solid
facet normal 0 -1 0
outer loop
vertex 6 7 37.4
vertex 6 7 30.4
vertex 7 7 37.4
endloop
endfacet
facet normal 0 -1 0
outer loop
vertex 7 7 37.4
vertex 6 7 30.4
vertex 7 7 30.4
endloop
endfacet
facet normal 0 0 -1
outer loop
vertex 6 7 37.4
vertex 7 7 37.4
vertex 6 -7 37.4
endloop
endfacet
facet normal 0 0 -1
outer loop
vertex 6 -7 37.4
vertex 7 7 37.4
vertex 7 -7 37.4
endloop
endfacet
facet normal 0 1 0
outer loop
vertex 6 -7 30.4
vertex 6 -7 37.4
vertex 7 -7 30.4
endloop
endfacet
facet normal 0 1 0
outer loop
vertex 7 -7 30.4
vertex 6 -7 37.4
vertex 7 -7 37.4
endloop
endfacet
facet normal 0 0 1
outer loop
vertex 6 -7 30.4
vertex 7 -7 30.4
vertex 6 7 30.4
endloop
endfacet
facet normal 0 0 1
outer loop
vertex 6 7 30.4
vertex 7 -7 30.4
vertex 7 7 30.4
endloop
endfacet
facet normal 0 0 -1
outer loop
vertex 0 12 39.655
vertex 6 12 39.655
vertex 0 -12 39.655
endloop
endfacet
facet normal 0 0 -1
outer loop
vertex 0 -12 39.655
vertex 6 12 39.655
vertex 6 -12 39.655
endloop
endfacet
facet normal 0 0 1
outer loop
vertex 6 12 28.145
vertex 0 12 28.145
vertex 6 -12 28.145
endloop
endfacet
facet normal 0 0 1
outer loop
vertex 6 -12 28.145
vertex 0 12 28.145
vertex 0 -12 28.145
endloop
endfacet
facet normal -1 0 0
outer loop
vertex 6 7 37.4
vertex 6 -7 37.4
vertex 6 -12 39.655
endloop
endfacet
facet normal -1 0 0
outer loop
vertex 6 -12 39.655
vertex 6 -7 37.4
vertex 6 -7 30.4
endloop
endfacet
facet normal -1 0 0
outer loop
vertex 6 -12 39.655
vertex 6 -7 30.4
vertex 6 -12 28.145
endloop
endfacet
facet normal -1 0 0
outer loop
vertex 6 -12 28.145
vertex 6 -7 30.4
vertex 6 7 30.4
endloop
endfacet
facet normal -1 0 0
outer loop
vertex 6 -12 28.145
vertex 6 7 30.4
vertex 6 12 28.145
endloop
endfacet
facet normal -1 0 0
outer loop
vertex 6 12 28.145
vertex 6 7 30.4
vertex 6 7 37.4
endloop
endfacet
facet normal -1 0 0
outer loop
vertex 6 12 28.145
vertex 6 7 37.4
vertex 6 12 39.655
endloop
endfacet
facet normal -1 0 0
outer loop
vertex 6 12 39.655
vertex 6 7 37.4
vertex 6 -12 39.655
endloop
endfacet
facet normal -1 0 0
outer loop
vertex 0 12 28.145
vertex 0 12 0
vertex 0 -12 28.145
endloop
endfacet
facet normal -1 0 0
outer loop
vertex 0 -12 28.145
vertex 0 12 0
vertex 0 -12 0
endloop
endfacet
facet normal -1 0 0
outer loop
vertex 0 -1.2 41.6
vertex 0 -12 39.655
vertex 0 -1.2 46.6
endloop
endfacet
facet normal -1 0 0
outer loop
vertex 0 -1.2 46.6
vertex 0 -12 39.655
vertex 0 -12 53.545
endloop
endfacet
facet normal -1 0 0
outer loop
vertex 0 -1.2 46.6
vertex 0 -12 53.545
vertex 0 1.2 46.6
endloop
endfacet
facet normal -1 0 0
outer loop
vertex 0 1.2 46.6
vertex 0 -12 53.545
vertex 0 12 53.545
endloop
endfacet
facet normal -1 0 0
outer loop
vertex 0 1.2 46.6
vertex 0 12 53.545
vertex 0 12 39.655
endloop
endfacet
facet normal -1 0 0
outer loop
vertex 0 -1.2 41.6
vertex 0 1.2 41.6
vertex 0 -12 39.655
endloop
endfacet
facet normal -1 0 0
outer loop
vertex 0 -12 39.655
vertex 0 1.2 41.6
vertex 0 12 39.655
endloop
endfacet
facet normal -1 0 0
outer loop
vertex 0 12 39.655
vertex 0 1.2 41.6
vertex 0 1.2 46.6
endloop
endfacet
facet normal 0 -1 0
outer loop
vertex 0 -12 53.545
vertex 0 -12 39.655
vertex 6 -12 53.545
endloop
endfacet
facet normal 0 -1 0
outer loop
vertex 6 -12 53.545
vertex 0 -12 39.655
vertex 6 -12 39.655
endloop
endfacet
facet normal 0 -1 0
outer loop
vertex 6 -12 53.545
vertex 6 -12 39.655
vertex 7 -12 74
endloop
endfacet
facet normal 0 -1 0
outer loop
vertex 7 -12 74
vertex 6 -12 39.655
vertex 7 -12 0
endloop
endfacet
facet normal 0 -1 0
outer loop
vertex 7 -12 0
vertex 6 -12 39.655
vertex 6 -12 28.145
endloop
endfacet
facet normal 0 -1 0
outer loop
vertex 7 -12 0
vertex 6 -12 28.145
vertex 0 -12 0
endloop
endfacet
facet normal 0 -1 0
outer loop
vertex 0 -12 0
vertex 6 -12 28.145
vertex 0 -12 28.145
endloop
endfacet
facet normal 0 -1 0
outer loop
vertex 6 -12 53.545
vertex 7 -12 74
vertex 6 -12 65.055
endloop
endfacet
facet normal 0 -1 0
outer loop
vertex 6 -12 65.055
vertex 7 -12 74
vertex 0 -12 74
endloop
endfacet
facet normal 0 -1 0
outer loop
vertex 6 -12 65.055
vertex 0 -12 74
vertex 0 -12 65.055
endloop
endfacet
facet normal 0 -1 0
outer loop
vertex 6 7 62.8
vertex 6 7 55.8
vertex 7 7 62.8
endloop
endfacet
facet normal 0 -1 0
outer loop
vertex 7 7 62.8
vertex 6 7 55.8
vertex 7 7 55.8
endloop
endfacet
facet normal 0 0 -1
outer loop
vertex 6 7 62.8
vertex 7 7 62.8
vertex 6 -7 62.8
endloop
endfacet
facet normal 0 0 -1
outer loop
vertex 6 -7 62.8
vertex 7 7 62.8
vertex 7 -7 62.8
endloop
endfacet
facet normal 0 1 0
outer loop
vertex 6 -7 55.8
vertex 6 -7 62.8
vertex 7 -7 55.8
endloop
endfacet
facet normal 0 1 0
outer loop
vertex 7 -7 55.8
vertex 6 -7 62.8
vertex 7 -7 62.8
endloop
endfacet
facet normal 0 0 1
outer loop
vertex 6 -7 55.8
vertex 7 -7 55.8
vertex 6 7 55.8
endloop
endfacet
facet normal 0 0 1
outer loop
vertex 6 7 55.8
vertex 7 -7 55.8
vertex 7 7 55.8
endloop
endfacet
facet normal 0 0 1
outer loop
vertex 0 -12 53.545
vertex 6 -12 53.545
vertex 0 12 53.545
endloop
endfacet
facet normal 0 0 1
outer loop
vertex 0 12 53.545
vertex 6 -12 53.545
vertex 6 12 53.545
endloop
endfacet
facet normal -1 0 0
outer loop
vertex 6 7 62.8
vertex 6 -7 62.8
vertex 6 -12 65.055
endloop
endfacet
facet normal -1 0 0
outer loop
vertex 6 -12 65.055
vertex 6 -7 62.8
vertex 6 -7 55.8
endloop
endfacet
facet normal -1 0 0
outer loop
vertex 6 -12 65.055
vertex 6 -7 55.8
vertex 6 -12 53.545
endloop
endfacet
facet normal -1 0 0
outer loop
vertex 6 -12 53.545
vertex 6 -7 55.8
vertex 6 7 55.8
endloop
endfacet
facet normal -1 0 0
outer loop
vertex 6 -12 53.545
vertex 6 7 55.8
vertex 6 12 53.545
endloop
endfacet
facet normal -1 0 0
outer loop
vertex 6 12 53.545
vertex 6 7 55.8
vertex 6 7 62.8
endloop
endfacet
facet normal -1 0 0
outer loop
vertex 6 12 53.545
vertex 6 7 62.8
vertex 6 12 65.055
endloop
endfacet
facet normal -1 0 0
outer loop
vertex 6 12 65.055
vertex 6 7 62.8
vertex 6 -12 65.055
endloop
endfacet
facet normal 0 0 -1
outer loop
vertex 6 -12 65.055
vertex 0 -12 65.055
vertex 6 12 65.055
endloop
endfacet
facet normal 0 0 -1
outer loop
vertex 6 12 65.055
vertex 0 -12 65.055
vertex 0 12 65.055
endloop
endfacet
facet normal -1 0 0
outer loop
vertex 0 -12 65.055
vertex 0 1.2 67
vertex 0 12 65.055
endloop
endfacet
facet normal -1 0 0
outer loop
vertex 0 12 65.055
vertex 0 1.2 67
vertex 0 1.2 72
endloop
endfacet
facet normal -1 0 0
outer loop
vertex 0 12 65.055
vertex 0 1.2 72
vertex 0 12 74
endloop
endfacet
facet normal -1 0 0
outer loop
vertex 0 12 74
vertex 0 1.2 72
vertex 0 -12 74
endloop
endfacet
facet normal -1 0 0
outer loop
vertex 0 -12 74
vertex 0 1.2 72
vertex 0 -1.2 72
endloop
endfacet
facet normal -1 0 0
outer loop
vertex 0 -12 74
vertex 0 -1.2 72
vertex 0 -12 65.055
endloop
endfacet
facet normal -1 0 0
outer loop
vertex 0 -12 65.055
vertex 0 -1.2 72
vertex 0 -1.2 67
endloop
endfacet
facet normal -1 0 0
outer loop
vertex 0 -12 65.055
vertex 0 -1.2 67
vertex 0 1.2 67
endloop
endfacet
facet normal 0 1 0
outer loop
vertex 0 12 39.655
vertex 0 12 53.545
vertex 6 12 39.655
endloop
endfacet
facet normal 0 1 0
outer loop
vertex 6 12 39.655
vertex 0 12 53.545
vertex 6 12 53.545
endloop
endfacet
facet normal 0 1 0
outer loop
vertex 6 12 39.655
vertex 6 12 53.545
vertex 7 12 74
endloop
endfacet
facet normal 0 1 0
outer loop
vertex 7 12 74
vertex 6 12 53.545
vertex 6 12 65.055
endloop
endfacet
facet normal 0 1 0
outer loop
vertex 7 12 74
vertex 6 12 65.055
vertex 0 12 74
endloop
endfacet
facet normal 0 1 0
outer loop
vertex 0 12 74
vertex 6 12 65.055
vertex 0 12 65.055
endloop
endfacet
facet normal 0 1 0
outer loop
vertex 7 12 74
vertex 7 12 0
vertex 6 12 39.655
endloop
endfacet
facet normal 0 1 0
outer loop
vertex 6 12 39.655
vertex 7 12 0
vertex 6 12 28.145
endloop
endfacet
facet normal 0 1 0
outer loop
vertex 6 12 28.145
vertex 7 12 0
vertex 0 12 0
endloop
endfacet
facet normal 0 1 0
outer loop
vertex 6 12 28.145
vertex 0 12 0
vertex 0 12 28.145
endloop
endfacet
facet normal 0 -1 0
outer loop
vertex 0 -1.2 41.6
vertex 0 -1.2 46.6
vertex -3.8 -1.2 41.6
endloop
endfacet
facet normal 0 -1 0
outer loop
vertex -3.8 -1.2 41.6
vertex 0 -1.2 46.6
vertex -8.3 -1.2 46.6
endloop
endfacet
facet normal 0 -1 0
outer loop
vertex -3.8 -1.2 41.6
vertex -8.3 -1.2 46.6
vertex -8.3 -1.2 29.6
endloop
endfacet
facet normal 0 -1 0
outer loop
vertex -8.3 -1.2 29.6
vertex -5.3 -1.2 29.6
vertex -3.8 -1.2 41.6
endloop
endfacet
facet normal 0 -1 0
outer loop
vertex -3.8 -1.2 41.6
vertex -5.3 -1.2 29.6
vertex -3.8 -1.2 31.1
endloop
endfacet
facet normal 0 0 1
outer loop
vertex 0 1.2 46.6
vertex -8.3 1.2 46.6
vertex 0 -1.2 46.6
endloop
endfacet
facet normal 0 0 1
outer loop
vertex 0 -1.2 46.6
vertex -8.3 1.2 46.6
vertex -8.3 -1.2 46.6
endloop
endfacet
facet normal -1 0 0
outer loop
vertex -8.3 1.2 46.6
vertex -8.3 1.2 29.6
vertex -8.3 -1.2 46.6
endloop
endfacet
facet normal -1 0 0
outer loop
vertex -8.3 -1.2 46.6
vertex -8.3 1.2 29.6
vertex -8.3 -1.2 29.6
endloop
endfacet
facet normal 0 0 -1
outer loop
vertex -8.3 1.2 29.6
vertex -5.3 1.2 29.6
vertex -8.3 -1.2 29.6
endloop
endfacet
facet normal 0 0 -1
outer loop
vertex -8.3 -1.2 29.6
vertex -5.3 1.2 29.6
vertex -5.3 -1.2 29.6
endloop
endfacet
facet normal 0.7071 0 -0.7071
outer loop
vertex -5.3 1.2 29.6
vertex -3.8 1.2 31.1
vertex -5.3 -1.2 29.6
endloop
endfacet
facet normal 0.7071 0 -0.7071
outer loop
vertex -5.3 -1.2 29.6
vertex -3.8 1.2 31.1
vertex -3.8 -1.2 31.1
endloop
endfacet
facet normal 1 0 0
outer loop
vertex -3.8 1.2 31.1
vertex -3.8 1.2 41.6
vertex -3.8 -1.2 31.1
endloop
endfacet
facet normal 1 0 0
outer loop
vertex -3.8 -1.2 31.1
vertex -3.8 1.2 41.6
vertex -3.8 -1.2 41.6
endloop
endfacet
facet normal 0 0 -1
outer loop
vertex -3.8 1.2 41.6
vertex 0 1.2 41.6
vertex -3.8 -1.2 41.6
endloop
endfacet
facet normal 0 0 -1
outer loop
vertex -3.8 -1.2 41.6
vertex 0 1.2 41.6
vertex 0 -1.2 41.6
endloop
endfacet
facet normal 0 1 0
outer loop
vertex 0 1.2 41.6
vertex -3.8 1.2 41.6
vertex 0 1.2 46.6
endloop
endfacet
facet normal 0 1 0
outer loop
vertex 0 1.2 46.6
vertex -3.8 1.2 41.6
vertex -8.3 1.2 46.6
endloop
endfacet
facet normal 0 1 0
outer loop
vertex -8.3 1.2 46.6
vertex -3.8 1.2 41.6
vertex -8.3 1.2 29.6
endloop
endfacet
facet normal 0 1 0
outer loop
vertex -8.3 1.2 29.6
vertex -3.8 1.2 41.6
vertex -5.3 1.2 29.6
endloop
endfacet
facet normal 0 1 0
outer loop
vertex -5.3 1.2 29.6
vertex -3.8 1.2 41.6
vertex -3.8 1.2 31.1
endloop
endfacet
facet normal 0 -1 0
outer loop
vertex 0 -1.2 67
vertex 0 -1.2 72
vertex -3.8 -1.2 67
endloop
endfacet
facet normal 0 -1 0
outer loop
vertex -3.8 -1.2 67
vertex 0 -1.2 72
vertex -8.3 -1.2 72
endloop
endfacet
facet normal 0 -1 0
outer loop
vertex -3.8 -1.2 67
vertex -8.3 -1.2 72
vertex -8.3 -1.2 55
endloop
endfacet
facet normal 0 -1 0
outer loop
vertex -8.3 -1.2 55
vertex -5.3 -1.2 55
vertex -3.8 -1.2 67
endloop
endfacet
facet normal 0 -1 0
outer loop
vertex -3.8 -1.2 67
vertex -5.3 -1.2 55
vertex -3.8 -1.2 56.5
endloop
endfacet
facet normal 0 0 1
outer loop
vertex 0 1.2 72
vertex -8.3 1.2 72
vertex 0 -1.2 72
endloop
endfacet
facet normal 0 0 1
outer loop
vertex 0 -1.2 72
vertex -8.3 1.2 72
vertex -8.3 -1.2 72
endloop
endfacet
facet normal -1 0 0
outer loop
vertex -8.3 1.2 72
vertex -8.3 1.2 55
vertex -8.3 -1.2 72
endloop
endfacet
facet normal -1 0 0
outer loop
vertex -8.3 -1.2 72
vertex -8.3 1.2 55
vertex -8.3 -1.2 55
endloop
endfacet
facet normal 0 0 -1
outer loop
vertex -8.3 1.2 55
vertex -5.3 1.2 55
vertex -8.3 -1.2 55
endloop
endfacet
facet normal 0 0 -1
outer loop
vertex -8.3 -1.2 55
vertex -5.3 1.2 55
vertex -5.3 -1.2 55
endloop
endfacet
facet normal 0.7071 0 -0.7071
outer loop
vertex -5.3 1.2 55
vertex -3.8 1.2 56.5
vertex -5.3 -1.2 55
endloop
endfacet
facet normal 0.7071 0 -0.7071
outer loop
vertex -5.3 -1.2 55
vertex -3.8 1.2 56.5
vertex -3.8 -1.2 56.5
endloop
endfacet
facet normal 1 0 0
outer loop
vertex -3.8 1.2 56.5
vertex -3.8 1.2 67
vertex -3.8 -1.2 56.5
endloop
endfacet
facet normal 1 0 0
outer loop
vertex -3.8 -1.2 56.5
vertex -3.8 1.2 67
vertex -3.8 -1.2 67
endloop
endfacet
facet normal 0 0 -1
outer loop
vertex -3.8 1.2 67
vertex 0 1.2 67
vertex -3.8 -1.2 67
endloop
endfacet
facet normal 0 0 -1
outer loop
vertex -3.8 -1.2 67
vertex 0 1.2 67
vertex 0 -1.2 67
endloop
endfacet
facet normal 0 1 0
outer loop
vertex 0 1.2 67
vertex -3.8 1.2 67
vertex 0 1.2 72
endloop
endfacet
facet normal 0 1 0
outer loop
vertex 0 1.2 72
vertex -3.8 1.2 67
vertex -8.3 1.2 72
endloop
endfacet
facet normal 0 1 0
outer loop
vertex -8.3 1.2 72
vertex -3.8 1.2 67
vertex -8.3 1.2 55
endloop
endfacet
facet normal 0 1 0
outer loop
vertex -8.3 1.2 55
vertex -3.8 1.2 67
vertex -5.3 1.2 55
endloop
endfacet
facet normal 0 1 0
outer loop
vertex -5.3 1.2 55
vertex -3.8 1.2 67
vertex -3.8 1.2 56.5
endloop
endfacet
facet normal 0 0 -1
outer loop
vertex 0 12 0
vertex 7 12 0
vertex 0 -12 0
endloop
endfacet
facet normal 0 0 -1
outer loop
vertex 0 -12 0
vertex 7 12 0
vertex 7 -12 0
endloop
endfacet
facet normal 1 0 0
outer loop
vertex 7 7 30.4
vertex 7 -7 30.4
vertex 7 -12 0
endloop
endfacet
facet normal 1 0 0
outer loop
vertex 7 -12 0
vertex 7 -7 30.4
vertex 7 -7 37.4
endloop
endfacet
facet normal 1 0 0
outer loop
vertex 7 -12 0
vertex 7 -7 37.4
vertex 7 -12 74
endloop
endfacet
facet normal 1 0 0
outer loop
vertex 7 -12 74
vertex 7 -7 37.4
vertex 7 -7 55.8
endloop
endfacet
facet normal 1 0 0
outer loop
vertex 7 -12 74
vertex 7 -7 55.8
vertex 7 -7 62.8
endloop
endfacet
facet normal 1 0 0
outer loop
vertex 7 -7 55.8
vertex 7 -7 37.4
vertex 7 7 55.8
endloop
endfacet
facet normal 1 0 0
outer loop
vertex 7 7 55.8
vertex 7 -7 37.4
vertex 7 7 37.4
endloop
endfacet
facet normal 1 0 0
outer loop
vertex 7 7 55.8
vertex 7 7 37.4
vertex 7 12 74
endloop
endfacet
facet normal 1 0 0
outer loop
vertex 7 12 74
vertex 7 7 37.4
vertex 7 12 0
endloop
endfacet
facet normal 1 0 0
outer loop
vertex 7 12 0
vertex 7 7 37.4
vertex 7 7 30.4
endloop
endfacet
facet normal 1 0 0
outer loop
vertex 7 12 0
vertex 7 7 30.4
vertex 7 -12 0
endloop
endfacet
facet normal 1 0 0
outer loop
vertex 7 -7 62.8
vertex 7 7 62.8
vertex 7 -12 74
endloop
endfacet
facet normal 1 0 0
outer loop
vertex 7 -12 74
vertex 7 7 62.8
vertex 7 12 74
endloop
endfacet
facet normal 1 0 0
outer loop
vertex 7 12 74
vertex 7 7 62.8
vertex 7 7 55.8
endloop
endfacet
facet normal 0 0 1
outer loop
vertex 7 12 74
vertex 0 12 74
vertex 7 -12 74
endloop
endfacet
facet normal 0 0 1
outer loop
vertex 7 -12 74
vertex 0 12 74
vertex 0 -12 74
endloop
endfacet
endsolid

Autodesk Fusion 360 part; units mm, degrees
sketch "Plate" plane through (0, 0, 0) normal (0, 1, 0) x (1, 0, 0)
  line L0 (0, 0) -> (7, 0)
  line L1 (7, 0) -> (7, -74)
  line L2 (7, -74) -> (0, -74)
  line L3 (0, -74) -> (0, 0)
  dimension "d58" = 7
  dimension "d59" = 74
extrude "Plate (1)" add sketch "Plate" along normal mid plane 24
sketch "Hook profile" plane through (0, 0, 0) normal (0, 1, 0) x (1, 0, 0)
  line L0 (0, -72) -> (-8.3, -72)
  line L1 (-8.3, -72) -> (-8.3, -55)
  line L2 (-8.3, -55) -> (-5.3, -55)
  line L3 (-5.3, -55) -> (-3.8, -56.5)
  line L4 (-3.8, -56.5) -> (-3.8, -67)
  line L5 (-3.8, -67) -> (0, -67)
  line L6 (0, -67) -> (0, -72)
  dimension "d62" = 72
  dimension "d63" = 8.3
  dimension "d64" = 3.8
  dimension "d65" = 5
  dimension "d66" = 10.5
  dimension "d67" = 1.5
  dimension "d68" = 1.5
extrude "Hook profile (1)" add sketch "Hook profile" along normal mid plane 2.4
pattern_linear "Hook rows" count 2 spacing 25.4 along (0, 0, -1) count 3 spacing 0 along (0, 0, 1) of "Hook profile (1)"
sketch "Nut track 0" plane through (0, 0, 0) normal (0, 1, 0) x (1, 0, 0)
  line L0 (0, -53.545) -> (6, -53.545)
  line L1 (6, -53.545) -> (6, -65.055)
  line L2 (6, -65.055) -> (0, -65.055)
  line L3 (0, -65.055) -> (0, -53.545)
  line L4 (0, -1.75) -> (0, -22.5)
  dimension "d75" = 53.545
  dimension "d76" = 6
  dimension "d77" = 65.055
extrude "Nut track 0 (1)" cut sketch "Nut track 0" along normal mid plane 34
sketch "Bolt slot 0" plane through (0, 0, 0) normal (0, 1, 0) x (1, 0, 0)
  line L0 (0, -55.8) -> (8, -55.8)
  line L1 (8, -55.8) -> (8, -62.8)
  line L2 (8, -62.8) -> (0, -62.8)
  line L3 (0, -62.8) -> (0, -55.8)
  line L4 (0, -1.75) -> (0, -22.5)
  dimension "d80" = 55.8
  dimension "d81" = 8
  dimension "d82" = 62.8
extrude "Bolt slot 0 (1)" cut sketch "Bolt slot 0" along normal mid plane 14
sketch "Nut track 1" plane through (0, 0, 0) normal (0, 1, 0) x (1, 0, 0)
  line L0 (0, -28.145) -> (6, -28.145)
  line L1 (6, -28.145) -> (6, -39.655)
  line L2 (6, -39.655) -> (0, -39.655)
  line L3 (0, -39.655) -> (0, -28.145)
  line L4 (0, -1.75) -> (0, -22.5)
  dimension "d85" = 28.145
  dimension "d86" = 6
  dimension "d87" = 39.655
extrude "Nut track 1 (1)" cut sketch "Nut track 1" along normal mid plane 34
sketch "Bolt slot 1" plane through (0, 0, 0) normal (0, 1, 0) x (1, 0, 0)
  line L0 (0, -30.4) -> (8, -30.4)
  line L1 (8, -30.4) -> (8, -37.4)
  line L2 (8, -37.4) -> (0, -37.4)
  line L3 (0, -37.4) -> (0, -30.4)
  line L4 (0, -1.75) -> (0, -22.5)
  dimension "d90" = 30.4
  dimension "d91" = 8
  dimension "d92" = 37.4
extrude "Bolt slot 1 (1)" cut sketch "Bolt slot 1" along normal mid plane 14
equation "bracketWidth = 24.0 mm" comment "bracket width across the upright"
equation "hookTabWidth = slotWidth - 0.8 mm" comment "blade width through the slot"
equation "slotPitchVertical = 25.4 mm" comment "1 inch, measured"
equation "faceMetalThickness = 2.0 mm" comment "upright face metal"
equation "hookThroat = faceMetalThickness + 1.8 mm" comment "gap behind the plate"
equation "hookNeckHeight = 5.0 mm" comment "bears on the slot bottom edge"
equation "hookLipThickness = 4.5 mm" comment "lip thickness behind the face"
equation "hookLipDrop = 12.0 mm" comment "engagement below the neck"
equation "hookLipChamfer = 1.5 mm" comment "lead-in past slot burrs"
equation "topHookNeckTop = 72.0 mm" comment "top row, below the plate top"
equation "hookRows = 2" comment "number of hook rows (pattern count)"
equation "plateThickness = 7.0 mm" comment "the board bolts to this face"
equation "plateHeight = 74.0 mm" comment "plate height, spans the hook rows"
equation "boltSlotHeight = 7.0 mm" comment "1/4-20 clearance, vertical"
equation "boltSlotLength = 14.0 mm" comment "horizontal adjustment range"
equation "nutTrackHeight = 11.51 mm" comment "across flats of a 1/4-20 nut"
equation "nutTrackDepth = 6.0 mm" comment "track depth from the rear face"
equation "slotWidth = 3.2 mm" comment "measured slot width in the upright"
equation "topBoltCentre = 59.3 mm" comment "top bolt, above the plate foot"
equation "d58 = plateThickness"
equation "d59 = plateHeight"
equation "d60 = bracketWidth"
equation "d62 = topHookNeckTop"
equation "d63 = hookThroat + hookLipThickness"
equation "d64 = hookThroat"
equation "d65 = hookNeckHeight"
equation "d66 = hookLipDrop - hookLipChamfer"
equation "d67 = hookLipChamfer"
equation "d68 = hookLipChamfer"
equation "d69 = hookTabWidth"
equation "d71 = hookRows"
equation "d73 = -slotPitchVertical"
equation "d75 = topBoltCentre - nutTrackHeight / 2"
equation "d76 = nutTrackDepth"
equation "d77 = topBoltCentre + nutTrackHeight / 2"
equation "d78 = bracketWidth + 10 mm"
equation "d80 = topBoltCentre - boltSlotHeight / 2"
equation "d81 = plateThickness + 1 mm"
equation "d82 = topBoltCentre + boltSlotHeight / 2"
equation "d83 = boltSlotLength"
equation "d85 = topBoltCentre - 1 * slotPitchVertical - nutTrackHeight / 2"
equation "d86 = nutTrackDepth"
equation "d87 = topBoltCentre - 1 * slotPitchVertical + nutTrackHeight / 2"
equation "d88 = bracketWidth + 10 mm"
equation "d90 = topBoltCentre - 1 * slotPitchVertical - boltSlotHeight / 2"
equation "d91 = plateThickness + 1 mm"
equation "d92 = topBoltCentre - 1 * slotPitchVertical + boltSlotHeight / 2"
equation "d93 = boltSlotLength"
